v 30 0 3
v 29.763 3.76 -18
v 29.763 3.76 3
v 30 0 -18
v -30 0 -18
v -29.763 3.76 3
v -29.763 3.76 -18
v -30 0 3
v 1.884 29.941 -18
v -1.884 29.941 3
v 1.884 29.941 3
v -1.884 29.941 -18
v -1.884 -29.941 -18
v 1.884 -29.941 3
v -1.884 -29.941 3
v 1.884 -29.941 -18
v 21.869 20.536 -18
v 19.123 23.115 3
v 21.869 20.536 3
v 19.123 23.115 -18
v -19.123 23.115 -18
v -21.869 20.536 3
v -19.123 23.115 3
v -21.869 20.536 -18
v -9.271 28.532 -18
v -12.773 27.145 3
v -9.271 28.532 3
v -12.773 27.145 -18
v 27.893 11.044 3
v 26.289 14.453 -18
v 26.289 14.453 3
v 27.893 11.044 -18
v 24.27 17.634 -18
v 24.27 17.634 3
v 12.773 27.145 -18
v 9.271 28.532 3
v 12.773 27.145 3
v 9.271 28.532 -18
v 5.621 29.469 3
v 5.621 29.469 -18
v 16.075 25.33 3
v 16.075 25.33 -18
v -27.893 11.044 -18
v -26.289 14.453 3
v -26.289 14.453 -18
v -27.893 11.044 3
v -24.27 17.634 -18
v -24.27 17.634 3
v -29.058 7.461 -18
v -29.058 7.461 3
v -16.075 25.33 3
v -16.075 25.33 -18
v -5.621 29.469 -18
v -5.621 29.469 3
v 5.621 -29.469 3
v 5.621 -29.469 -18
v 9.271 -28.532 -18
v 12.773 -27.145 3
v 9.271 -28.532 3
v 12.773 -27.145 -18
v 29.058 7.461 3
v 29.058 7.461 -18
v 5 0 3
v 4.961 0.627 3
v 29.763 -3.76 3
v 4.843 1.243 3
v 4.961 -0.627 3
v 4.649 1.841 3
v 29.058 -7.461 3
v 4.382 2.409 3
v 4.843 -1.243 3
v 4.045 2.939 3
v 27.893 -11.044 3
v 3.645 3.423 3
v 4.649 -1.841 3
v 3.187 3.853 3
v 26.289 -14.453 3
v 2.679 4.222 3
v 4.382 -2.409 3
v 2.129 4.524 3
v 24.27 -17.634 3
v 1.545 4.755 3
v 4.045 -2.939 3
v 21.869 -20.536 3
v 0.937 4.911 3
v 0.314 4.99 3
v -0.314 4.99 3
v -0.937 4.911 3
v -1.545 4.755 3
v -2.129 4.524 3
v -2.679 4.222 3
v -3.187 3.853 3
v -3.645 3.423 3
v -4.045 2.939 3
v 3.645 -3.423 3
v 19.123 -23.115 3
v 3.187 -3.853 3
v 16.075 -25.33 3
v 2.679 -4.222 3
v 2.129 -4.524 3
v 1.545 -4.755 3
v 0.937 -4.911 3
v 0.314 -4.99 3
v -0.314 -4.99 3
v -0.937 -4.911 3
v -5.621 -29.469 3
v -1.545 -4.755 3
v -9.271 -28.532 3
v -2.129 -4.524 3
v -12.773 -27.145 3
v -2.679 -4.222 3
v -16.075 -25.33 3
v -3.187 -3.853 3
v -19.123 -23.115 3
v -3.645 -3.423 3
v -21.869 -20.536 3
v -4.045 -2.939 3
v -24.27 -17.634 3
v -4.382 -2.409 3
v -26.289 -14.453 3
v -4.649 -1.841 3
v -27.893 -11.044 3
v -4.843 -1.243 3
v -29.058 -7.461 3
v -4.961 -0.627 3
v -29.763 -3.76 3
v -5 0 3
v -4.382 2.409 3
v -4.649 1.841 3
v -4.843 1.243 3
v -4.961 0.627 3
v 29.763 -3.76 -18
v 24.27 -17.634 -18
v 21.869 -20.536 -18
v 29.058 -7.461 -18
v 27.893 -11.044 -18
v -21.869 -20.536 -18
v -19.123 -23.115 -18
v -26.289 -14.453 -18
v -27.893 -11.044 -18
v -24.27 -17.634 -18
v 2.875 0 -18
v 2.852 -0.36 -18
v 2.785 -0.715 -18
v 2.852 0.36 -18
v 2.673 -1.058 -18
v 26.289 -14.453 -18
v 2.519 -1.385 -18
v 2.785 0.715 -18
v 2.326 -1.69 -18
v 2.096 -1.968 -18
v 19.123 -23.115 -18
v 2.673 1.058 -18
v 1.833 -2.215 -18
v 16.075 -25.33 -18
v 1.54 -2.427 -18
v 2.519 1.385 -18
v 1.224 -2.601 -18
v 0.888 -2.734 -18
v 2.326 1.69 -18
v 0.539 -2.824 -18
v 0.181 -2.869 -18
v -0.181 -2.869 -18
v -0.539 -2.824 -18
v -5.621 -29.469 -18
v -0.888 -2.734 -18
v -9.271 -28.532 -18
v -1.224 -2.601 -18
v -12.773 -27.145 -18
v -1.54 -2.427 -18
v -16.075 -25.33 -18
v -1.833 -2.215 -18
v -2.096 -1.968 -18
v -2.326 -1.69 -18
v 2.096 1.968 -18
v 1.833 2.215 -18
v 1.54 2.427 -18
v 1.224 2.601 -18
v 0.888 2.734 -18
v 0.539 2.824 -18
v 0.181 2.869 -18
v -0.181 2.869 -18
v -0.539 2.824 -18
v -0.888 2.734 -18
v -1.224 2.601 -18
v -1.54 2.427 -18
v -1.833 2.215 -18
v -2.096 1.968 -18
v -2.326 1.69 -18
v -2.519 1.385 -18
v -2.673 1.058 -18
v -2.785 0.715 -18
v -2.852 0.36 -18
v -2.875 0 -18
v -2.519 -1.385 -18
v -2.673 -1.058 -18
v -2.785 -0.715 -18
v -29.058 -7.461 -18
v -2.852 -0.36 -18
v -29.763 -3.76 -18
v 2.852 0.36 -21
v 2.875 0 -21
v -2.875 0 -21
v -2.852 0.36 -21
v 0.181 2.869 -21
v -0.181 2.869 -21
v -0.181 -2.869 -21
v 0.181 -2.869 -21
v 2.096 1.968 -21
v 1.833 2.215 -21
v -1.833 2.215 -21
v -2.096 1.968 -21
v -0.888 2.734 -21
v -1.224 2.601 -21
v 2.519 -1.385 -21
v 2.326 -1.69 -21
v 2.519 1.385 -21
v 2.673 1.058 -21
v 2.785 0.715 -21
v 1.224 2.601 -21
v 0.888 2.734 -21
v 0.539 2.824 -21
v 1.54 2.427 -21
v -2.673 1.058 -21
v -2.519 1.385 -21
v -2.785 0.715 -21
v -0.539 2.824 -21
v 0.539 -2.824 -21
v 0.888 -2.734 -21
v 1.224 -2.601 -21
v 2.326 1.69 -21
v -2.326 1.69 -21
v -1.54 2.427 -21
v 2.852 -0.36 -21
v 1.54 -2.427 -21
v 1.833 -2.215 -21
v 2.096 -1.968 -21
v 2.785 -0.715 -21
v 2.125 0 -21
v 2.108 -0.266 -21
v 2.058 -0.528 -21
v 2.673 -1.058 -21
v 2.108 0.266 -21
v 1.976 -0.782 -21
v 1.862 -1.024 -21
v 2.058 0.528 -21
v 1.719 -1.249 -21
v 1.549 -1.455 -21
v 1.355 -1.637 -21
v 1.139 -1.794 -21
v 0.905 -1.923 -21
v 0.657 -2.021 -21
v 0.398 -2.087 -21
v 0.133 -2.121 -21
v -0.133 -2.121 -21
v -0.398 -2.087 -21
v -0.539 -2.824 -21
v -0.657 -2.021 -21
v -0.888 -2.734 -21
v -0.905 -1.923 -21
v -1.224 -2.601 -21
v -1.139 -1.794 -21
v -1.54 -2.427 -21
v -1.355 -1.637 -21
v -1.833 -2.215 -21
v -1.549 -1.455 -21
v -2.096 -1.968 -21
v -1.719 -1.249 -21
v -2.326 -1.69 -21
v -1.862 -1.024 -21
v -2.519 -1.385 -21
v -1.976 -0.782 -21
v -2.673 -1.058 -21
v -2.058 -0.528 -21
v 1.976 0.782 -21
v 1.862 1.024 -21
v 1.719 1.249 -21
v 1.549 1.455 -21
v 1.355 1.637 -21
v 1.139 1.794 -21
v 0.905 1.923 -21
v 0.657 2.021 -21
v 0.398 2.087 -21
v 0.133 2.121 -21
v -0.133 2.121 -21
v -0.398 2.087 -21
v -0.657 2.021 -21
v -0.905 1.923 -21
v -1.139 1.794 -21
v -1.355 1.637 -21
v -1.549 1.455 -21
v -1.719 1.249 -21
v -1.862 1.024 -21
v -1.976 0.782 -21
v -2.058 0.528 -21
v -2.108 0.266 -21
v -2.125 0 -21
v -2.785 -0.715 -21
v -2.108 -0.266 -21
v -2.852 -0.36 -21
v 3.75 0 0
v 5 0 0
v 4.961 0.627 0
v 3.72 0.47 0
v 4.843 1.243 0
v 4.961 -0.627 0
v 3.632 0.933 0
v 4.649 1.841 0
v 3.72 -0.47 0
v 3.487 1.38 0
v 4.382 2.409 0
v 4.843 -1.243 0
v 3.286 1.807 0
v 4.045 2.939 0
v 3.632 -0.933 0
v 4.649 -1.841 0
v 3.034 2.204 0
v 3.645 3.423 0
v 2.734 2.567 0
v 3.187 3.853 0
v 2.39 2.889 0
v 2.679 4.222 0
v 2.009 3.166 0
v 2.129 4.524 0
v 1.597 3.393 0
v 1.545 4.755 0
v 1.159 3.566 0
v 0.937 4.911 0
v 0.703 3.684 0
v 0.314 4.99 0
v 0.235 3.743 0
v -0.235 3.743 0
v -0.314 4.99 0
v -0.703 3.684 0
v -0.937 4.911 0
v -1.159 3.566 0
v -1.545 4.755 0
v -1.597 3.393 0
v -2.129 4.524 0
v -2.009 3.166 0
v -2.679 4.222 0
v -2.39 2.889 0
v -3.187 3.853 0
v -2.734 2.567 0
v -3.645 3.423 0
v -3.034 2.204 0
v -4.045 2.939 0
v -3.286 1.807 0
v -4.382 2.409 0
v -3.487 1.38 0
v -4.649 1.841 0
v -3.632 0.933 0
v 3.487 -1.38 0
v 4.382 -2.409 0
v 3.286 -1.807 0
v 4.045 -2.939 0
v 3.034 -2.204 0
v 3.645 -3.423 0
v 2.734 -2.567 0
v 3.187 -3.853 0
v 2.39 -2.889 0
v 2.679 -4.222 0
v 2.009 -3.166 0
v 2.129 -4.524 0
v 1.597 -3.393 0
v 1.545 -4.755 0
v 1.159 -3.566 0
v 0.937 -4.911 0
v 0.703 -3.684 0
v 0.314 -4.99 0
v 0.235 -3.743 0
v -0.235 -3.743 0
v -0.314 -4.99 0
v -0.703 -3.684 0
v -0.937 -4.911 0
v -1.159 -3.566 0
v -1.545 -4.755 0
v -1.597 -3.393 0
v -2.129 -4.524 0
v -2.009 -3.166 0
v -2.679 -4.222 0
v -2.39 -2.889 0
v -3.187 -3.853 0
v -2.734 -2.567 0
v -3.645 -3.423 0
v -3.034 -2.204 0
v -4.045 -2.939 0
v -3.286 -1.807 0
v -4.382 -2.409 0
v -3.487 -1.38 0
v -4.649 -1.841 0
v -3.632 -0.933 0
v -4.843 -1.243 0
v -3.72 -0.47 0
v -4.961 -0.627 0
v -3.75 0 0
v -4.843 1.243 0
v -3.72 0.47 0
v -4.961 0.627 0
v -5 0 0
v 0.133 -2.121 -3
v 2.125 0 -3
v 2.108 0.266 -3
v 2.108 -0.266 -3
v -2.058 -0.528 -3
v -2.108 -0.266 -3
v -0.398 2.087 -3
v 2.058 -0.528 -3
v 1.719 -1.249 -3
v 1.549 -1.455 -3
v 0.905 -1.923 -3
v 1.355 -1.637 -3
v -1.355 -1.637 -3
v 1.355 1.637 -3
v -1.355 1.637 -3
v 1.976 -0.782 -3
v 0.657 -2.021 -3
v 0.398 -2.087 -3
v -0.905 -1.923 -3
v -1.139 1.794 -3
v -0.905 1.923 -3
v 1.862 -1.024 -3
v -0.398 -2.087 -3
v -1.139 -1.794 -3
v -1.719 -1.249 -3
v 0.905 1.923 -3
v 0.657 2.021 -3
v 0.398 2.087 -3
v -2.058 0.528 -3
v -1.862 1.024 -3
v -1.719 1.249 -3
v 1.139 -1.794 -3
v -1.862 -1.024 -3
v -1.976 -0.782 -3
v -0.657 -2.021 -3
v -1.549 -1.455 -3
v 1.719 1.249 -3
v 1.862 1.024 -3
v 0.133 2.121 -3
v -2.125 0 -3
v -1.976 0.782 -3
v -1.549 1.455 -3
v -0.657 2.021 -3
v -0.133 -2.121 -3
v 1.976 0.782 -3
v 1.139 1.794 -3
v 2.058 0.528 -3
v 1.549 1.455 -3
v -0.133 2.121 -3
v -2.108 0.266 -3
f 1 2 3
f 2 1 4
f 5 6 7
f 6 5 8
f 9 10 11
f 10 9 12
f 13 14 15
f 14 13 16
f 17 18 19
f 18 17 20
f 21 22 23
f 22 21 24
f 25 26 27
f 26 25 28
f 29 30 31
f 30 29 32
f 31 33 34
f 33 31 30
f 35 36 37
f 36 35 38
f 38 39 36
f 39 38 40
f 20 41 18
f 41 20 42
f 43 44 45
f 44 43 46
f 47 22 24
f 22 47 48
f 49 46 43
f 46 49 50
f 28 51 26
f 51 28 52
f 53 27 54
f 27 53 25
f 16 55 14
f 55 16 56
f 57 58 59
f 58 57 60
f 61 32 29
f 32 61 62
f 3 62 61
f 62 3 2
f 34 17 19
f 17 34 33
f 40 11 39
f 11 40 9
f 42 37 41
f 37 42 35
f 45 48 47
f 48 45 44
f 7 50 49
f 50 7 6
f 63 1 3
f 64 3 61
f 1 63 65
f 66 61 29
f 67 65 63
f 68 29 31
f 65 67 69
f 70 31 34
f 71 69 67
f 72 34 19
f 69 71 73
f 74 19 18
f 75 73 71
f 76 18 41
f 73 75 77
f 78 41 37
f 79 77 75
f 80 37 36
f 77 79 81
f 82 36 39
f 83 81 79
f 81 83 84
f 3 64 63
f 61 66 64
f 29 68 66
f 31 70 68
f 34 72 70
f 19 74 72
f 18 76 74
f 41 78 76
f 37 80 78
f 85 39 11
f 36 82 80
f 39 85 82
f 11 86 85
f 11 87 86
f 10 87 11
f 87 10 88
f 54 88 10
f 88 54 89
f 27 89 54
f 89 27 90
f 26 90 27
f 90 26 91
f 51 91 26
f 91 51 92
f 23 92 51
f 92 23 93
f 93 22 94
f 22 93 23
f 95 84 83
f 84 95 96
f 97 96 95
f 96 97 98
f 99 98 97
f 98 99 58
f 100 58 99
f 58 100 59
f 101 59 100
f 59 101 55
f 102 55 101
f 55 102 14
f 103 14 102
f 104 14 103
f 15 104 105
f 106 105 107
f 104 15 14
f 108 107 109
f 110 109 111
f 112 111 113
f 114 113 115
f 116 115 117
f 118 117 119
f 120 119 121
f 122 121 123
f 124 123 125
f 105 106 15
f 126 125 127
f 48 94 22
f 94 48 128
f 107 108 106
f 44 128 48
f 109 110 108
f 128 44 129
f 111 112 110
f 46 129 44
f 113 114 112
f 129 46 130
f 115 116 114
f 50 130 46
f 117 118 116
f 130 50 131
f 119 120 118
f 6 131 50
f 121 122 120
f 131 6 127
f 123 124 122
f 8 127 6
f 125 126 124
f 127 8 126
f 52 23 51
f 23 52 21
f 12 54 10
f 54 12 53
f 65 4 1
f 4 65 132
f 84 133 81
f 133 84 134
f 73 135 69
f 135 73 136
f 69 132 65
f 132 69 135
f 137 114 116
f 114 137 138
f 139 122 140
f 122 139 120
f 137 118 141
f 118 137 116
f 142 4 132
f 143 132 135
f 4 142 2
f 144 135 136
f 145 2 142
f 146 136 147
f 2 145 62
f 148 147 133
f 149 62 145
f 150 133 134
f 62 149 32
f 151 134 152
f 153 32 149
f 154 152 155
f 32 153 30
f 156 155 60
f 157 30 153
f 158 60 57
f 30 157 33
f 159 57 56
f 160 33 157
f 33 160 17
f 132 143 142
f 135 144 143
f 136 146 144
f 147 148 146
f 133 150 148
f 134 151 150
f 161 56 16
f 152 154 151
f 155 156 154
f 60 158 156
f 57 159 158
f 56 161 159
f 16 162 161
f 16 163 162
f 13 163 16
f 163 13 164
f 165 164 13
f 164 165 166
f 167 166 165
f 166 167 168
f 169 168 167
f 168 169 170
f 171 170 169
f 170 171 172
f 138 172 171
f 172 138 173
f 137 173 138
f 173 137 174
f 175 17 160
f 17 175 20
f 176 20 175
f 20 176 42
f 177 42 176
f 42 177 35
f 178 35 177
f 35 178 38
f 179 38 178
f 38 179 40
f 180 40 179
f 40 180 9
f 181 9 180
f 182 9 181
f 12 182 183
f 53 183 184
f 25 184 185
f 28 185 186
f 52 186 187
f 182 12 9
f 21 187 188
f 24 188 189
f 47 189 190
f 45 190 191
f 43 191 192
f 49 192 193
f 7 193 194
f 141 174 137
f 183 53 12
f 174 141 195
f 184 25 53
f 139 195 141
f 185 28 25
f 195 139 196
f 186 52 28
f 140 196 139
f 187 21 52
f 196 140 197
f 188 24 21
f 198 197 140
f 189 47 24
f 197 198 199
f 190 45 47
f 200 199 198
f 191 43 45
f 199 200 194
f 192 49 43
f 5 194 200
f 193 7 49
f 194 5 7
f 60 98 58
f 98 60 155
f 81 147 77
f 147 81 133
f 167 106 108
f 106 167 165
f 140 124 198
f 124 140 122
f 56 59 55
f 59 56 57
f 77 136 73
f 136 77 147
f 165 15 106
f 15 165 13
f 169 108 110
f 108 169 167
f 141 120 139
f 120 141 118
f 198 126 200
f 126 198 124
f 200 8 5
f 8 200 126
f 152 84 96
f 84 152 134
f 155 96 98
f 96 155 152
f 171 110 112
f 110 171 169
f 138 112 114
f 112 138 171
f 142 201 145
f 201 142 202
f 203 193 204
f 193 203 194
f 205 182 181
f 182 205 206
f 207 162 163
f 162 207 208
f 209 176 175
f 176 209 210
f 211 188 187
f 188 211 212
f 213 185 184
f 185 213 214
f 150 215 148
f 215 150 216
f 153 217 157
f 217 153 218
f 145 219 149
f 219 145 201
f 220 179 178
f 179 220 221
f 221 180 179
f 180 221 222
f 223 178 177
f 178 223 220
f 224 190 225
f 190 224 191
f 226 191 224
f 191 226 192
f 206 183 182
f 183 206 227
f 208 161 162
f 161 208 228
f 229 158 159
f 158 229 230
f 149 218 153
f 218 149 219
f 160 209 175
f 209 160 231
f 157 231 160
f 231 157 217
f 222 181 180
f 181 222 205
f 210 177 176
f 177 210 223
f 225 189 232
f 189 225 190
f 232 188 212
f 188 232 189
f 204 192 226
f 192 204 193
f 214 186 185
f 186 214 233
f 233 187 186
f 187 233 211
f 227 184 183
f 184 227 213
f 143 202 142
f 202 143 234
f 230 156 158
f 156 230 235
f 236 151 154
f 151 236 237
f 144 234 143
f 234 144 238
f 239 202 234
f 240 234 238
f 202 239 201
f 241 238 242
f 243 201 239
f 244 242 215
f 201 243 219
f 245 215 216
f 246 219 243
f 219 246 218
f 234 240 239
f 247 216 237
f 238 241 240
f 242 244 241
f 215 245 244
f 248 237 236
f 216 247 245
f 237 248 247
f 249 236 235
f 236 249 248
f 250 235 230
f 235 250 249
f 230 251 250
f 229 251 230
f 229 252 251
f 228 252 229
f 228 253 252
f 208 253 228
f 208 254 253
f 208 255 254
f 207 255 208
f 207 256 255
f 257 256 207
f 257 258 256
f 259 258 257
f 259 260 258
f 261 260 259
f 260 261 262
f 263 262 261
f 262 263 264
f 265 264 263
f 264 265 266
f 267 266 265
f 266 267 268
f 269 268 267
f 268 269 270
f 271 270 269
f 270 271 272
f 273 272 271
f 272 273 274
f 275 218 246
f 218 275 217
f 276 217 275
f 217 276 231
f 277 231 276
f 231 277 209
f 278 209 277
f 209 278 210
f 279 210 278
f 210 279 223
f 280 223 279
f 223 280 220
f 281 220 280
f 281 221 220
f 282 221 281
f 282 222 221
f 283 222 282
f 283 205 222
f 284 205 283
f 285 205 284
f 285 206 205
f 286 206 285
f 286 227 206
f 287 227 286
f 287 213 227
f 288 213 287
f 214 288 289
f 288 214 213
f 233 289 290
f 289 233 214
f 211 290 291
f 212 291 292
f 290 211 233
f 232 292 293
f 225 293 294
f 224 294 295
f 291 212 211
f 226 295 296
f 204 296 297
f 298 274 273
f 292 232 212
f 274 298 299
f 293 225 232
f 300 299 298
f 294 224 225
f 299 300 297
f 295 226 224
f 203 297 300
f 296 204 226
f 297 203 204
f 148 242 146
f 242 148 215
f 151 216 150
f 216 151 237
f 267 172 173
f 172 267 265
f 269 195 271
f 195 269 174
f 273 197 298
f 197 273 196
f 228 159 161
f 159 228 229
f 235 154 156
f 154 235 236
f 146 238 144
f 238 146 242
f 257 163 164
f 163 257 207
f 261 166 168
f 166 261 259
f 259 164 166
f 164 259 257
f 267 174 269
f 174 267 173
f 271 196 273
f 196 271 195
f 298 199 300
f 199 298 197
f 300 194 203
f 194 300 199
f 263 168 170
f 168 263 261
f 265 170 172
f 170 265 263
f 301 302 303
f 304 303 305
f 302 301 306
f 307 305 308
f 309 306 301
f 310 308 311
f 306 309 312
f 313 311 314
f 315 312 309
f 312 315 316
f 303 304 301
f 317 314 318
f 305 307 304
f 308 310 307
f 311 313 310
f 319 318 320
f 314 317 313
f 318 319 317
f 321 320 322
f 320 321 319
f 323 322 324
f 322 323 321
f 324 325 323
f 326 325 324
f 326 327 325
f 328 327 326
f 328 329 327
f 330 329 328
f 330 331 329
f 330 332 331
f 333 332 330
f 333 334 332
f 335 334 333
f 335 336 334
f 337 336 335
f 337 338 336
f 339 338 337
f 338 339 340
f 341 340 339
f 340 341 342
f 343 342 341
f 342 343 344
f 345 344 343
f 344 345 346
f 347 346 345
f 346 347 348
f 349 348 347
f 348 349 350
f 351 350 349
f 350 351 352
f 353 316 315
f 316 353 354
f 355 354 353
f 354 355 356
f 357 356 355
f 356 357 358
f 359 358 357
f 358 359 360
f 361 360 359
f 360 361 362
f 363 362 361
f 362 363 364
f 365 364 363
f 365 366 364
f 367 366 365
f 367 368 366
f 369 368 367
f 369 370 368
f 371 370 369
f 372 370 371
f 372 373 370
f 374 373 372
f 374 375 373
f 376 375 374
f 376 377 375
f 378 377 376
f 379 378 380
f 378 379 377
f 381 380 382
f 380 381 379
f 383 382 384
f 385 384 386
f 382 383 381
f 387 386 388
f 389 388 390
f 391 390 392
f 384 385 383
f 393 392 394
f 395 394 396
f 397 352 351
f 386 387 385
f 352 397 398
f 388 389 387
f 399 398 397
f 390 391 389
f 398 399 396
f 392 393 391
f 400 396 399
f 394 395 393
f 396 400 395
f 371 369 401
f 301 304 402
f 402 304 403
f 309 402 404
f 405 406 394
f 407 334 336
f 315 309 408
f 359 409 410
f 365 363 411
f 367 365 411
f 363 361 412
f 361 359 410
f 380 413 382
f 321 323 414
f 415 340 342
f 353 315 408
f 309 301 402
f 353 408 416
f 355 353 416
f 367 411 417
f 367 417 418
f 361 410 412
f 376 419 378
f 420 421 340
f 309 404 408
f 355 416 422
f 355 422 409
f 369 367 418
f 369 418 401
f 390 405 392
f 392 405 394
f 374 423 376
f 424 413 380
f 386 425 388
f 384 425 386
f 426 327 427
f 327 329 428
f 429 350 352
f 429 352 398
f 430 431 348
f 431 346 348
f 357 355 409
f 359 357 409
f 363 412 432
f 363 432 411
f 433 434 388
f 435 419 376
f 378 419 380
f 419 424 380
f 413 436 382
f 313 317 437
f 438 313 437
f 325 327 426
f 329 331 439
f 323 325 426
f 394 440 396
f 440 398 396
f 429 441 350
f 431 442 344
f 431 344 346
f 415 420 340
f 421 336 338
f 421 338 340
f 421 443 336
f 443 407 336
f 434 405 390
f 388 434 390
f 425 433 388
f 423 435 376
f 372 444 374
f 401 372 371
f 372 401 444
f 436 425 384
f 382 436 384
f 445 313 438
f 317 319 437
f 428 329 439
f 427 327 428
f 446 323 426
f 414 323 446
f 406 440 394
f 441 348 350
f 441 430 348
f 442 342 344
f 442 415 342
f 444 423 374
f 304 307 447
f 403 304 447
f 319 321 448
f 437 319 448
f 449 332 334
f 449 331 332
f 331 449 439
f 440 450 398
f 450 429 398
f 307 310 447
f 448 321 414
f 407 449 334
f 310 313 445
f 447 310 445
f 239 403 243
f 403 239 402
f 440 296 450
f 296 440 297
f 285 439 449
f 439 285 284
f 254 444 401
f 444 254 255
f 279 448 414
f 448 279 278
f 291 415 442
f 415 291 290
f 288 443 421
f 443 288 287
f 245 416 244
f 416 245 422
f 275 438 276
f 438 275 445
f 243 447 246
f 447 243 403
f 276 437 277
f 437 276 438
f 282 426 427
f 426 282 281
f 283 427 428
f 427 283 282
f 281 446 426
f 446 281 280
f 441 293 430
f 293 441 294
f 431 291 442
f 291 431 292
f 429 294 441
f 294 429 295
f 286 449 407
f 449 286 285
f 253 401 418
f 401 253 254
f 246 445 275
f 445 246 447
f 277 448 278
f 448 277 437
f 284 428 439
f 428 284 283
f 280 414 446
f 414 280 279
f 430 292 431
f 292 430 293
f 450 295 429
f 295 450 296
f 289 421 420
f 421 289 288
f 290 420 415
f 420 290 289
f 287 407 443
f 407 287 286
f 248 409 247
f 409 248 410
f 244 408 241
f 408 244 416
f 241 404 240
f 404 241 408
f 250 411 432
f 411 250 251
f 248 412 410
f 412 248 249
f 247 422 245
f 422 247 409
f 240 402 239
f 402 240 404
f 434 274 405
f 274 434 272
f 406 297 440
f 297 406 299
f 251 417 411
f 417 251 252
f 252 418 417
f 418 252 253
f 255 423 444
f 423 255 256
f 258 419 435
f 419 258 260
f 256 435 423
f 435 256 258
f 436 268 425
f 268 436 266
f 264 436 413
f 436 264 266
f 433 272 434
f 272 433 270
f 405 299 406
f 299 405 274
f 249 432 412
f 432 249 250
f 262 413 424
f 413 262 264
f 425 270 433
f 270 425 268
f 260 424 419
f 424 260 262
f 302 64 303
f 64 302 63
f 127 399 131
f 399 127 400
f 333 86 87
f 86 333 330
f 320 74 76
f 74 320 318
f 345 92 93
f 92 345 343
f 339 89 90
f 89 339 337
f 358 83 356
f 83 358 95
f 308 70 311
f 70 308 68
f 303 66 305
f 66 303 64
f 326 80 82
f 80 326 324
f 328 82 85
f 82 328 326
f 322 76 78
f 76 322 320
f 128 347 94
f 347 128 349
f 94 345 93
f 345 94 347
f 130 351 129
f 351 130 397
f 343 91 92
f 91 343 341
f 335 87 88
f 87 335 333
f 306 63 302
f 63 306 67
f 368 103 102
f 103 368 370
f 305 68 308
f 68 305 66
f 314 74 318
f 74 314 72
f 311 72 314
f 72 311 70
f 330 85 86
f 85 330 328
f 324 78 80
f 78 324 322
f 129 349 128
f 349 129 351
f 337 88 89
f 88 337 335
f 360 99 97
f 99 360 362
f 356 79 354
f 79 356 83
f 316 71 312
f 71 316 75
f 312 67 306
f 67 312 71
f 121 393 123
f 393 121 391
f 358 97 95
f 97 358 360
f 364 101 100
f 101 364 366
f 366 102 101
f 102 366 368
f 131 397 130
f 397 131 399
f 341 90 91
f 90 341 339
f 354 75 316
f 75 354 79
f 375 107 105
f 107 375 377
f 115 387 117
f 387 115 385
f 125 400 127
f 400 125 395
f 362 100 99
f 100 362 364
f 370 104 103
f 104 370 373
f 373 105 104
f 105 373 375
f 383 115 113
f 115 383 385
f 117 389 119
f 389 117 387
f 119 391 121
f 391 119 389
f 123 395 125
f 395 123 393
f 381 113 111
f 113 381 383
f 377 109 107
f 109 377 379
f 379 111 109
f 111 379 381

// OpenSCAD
$fn = 50;


difference() {
	union() {
		translate(v = [0, 0, -18.0000000000]) {
			cylinder(h = 21, r = 30.0000000000);
		}
		#translate(v = [0, 0, -21.0000000000]) {
			cylinder(h = 21, r = 2.8750000000);
		}
	}
	union() {
		translate(v = [0, 0, 0]) {
			rotate(a = [0, 0, 0]) {
				difference() {
					union() {
						translate(v = [0, 0, -21.0000000000]) {
							cylinder(h = 21, r = 2.0000000000);
						}
						translate(v = [0, 0, -3]) {
							cylinder(h = 3, r1 = 2.1250000000, r2 = 3.7500000000);
						}
						translate(v = [0, 0, -21.0000000000]) {
							cylinder(h = 21, r = 2.1250000000);
						}
						translate(v = [0, 0, -21.0000000000]) {
							cylinder(h = 21, r = 2.0000000000);
						}
					}
					union();
				}
			}
		}
		#cylinder(h = 3, r = 5.0000000000);
	}
}
